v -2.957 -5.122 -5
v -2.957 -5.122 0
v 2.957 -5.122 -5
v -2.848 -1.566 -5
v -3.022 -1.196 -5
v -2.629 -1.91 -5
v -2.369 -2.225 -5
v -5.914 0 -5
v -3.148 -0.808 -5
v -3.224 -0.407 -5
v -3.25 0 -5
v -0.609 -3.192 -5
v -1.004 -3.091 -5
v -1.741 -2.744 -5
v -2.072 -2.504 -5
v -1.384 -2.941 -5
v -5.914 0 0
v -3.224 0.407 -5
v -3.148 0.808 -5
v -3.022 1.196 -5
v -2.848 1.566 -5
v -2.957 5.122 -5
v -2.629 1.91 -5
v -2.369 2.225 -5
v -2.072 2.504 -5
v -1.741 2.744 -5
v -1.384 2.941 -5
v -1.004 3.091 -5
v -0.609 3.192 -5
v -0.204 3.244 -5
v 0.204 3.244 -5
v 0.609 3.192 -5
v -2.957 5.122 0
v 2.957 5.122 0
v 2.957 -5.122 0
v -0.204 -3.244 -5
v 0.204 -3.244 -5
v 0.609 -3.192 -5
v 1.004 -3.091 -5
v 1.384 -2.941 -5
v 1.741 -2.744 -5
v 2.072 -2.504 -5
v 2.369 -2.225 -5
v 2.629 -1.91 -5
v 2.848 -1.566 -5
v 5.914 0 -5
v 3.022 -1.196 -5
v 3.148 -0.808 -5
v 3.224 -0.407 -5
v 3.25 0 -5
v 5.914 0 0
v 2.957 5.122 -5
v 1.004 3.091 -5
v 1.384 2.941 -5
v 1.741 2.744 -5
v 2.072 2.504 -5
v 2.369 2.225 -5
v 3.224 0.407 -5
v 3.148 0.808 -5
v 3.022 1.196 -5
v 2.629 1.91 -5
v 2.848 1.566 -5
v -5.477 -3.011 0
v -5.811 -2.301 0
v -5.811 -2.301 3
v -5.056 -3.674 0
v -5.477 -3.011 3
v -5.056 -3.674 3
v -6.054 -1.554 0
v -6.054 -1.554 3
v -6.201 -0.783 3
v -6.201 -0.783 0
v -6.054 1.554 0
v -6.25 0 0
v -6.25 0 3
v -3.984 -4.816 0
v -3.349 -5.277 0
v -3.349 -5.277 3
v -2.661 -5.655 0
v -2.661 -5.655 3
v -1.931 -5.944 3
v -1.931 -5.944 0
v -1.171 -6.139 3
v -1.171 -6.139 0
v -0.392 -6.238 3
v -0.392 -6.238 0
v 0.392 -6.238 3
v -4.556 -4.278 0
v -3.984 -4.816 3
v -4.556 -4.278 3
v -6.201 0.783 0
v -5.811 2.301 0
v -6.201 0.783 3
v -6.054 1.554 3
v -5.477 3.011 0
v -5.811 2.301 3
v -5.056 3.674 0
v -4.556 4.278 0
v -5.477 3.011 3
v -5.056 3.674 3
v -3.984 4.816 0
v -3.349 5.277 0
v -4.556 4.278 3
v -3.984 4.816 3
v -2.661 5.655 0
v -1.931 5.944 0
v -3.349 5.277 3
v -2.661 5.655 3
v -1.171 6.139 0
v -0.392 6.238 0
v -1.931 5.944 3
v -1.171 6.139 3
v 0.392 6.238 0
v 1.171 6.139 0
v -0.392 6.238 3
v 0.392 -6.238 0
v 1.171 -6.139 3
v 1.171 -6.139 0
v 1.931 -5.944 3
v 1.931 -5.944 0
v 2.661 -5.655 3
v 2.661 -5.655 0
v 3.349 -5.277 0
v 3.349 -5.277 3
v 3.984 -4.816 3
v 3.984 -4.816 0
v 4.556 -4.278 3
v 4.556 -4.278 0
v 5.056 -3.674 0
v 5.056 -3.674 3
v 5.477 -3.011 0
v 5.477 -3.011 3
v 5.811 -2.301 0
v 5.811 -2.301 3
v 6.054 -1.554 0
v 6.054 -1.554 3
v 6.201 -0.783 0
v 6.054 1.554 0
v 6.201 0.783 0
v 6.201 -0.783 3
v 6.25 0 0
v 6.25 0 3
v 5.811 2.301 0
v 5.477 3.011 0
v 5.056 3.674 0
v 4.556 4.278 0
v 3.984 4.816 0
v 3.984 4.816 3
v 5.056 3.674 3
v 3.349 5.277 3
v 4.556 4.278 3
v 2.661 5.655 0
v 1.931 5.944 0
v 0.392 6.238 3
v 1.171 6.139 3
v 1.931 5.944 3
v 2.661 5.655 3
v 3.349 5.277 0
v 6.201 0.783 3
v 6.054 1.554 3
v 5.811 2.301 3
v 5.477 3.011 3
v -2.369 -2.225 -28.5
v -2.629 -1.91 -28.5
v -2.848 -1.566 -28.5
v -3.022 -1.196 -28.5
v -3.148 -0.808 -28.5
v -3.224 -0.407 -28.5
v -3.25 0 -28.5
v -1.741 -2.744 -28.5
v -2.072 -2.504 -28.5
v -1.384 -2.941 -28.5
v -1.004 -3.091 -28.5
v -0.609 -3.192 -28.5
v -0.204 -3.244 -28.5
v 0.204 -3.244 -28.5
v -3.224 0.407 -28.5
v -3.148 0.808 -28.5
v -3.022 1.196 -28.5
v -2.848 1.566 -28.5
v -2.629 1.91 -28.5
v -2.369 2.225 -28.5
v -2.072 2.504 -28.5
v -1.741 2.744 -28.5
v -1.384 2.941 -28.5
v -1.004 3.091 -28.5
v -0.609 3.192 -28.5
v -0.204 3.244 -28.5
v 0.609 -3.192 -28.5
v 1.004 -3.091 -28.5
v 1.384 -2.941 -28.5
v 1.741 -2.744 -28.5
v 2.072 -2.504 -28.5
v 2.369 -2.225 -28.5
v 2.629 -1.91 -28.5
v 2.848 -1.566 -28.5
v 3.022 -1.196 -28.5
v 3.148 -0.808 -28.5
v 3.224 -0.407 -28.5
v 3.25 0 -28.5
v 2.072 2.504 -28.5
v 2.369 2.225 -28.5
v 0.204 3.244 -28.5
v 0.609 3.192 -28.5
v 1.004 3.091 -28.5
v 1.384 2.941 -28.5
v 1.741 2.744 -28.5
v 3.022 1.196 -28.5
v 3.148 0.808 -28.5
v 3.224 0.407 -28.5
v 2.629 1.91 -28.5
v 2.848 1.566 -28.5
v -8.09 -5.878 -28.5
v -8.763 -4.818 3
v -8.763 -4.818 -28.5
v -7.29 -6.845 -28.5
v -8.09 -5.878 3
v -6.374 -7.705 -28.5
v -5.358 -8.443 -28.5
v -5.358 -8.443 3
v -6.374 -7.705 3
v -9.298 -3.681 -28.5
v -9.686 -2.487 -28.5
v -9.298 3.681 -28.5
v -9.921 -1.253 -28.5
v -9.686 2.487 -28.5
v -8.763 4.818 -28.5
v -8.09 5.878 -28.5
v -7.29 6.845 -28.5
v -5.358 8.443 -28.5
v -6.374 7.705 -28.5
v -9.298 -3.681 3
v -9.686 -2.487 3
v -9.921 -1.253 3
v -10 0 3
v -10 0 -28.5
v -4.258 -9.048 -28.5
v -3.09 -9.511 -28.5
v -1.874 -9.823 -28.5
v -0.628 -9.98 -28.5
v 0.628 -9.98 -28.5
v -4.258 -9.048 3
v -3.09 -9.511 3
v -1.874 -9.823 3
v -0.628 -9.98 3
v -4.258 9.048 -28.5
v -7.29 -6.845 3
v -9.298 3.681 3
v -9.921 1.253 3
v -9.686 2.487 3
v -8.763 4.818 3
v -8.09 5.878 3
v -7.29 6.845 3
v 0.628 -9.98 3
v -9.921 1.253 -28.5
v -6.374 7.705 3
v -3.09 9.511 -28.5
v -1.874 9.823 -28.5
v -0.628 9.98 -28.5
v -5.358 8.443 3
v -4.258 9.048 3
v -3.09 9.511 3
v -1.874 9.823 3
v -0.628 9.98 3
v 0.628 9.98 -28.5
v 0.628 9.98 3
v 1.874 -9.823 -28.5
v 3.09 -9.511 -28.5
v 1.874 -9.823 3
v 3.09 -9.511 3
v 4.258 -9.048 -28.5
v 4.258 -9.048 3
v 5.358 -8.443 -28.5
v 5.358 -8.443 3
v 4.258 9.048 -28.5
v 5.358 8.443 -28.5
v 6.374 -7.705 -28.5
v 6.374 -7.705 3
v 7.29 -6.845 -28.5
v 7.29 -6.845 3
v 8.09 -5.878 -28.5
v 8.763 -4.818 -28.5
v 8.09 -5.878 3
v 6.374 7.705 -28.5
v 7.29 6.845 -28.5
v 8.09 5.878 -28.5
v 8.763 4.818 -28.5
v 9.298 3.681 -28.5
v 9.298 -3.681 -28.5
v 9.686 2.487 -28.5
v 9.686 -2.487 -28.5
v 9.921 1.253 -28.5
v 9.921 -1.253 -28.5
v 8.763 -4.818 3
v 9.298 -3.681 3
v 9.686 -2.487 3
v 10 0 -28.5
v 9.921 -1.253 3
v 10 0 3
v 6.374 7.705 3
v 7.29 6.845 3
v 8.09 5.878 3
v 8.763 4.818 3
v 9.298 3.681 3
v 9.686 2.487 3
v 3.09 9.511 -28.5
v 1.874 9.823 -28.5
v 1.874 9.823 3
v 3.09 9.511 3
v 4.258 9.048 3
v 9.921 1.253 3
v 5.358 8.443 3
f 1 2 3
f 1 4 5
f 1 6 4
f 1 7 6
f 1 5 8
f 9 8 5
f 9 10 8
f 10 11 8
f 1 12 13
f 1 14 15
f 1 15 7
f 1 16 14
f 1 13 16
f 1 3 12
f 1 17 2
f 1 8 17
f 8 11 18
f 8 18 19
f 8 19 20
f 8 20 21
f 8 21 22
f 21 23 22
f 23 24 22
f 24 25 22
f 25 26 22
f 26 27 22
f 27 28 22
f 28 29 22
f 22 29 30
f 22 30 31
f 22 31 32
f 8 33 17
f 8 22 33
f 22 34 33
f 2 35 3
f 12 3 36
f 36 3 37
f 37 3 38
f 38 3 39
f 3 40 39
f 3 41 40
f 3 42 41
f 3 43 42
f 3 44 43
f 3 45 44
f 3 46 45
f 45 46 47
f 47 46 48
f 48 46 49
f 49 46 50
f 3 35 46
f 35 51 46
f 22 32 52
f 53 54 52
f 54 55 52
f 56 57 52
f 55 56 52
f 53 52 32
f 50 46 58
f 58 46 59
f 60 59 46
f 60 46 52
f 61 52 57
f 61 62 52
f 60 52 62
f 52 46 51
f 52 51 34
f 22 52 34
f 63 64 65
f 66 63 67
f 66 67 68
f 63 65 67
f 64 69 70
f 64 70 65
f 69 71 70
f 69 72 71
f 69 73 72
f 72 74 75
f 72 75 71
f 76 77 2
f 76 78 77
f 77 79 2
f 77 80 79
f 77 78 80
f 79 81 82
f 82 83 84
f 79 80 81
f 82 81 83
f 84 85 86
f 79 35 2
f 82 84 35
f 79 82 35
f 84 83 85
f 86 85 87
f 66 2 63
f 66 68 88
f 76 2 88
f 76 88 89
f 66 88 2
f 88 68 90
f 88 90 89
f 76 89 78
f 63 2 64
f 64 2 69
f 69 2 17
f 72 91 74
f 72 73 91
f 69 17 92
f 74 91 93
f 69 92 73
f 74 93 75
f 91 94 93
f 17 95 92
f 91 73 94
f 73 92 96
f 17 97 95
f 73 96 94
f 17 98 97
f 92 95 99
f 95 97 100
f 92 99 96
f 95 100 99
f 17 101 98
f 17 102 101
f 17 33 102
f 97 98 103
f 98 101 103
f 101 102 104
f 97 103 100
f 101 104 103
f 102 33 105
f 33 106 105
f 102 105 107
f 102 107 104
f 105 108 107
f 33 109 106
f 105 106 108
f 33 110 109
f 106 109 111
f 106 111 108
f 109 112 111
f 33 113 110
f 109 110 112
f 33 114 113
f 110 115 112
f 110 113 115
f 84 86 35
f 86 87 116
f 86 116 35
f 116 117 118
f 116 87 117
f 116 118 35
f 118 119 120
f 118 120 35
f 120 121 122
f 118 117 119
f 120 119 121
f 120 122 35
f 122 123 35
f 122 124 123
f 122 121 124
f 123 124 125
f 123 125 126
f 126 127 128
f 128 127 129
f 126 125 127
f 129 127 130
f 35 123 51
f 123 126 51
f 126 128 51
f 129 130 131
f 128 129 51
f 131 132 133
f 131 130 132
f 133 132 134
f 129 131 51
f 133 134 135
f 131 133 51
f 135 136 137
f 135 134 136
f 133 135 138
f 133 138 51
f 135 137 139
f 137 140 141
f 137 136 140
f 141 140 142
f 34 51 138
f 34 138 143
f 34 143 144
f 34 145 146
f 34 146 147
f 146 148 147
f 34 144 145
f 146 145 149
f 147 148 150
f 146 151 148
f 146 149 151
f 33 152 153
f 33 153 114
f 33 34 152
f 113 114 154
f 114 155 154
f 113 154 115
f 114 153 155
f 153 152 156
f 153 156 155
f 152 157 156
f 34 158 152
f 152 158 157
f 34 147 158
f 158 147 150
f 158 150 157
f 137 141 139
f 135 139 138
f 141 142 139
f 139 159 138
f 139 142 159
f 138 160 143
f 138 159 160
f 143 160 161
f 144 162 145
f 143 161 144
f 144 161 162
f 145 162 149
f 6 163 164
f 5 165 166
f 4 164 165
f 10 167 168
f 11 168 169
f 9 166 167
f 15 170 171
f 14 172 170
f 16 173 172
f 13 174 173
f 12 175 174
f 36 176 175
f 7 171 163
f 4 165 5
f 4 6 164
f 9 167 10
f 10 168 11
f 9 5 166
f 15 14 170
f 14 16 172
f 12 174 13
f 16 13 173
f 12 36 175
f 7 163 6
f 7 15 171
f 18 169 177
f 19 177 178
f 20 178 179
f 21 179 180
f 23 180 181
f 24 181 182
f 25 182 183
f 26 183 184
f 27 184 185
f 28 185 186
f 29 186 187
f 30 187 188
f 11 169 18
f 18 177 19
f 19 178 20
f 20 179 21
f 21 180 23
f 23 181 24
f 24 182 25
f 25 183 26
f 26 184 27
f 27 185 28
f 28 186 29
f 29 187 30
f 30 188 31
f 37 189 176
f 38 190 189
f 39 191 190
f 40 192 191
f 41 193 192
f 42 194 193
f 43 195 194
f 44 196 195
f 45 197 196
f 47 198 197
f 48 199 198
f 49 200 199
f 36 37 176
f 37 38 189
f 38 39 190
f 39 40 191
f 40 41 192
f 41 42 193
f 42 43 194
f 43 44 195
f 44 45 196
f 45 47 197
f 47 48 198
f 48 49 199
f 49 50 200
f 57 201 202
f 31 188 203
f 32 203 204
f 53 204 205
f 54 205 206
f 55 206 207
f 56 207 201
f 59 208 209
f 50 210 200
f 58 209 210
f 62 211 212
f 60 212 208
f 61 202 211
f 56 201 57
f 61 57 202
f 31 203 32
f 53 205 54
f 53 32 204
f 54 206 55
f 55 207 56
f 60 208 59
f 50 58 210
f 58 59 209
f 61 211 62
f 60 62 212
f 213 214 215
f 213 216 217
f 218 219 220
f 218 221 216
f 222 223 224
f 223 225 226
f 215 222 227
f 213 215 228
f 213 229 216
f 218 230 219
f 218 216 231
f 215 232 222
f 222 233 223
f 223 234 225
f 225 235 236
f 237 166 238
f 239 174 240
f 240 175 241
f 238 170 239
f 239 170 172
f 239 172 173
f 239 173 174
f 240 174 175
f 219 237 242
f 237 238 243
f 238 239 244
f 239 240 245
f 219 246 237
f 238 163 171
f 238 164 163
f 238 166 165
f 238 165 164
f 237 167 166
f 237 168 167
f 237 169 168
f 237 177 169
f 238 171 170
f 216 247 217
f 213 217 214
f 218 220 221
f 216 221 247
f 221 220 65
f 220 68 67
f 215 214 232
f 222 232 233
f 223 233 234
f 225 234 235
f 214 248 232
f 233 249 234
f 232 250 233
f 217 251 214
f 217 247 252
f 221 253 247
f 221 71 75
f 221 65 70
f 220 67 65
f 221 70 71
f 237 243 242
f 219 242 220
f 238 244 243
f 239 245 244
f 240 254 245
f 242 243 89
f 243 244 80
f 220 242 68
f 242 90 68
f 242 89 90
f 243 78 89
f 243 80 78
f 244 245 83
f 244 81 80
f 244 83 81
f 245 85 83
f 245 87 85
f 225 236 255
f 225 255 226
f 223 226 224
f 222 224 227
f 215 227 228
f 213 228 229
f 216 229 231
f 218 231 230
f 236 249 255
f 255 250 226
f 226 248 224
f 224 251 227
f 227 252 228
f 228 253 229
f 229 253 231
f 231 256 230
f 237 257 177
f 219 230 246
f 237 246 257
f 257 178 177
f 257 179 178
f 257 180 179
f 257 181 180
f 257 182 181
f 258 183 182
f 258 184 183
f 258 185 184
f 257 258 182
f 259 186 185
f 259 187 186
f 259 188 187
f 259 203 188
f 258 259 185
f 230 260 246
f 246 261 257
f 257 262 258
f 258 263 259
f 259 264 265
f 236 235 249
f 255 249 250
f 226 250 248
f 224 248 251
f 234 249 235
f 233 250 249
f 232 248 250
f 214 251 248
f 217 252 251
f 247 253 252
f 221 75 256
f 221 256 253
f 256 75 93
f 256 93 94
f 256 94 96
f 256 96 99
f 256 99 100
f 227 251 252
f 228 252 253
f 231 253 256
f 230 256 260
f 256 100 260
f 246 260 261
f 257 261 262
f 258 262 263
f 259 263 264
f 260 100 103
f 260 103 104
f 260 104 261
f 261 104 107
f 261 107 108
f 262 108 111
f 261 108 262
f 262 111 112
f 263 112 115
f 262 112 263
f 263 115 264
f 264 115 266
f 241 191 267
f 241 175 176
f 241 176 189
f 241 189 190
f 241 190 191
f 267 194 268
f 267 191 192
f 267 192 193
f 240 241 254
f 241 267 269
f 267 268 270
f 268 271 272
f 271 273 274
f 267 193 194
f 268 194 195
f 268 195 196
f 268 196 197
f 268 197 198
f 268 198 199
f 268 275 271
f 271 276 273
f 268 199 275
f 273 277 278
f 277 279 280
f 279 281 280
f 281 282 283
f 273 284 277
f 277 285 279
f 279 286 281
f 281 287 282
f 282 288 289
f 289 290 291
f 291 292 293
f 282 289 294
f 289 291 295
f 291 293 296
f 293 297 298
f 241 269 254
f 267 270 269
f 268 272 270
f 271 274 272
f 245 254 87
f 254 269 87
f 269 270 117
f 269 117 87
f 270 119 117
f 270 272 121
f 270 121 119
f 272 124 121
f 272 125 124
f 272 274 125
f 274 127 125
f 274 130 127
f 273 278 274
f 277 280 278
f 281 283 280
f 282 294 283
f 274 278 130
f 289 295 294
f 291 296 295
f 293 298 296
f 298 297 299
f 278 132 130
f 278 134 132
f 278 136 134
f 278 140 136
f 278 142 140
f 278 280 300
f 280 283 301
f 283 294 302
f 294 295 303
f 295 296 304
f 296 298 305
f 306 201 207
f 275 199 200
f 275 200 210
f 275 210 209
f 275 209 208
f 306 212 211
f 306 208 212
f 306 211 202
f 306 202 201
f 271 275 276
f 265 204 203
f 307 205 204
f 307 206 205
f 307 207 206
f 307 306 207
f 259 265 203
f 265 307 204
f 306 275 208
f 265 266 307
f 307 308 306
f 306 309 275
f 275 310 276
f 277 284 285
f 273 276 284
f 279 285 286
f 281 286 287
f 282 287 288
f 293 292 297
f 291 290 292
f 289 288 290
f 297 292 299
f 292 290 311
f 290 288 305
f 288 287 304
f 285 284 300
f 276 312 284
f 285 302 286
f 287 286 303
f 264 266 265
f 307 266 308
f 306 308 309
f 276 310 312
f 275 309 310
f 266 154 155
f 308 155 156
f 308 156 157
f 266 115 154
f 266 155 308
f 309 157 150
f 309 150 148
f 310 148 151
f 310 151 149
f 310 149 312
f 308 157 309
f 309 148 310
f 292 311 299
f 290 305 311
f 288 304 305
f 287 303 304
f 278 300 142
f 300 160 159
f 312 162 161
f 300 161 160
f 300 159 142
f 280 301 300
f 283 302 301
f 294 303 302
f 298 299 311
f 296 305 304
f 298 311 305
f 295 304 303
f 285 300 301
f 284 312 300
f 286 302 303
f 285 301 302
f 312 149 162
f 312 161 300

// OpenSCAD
$fn = 50;

difference() {
	union() {
		translate(v = [0, 0, -28.5]) {
			cylinder(h = 31.5, r = 10.0);
		}
	}
	union() {
		translate(v = [0, 0, 0]) {
			rotate(a = [0, 0, 0]) {
				difference() {
					union() {
						translate(v = [0, 0, -5]) {
							linear_extrude(height = 5) {
								polygon(points = [[5.914249999999999, 0.0], [2.957125, 5.1218907443321156], [-2.9571249999999982, 5.1218907443321156], [-5.914249999999999, 7.242867331857232e-16], [-2.9571250000000022, -5.121890744332115], [2.9571249999999956, -5.121890744332118]]);
							}
						}
					}
					union();
				}
			}
		}
		#cylinder(h = 3, r = 6.25);
		#translate(v = [0, 0, -100.0]) {
			cylinder(h = 200, r = 3.25);
		}
	}
}
